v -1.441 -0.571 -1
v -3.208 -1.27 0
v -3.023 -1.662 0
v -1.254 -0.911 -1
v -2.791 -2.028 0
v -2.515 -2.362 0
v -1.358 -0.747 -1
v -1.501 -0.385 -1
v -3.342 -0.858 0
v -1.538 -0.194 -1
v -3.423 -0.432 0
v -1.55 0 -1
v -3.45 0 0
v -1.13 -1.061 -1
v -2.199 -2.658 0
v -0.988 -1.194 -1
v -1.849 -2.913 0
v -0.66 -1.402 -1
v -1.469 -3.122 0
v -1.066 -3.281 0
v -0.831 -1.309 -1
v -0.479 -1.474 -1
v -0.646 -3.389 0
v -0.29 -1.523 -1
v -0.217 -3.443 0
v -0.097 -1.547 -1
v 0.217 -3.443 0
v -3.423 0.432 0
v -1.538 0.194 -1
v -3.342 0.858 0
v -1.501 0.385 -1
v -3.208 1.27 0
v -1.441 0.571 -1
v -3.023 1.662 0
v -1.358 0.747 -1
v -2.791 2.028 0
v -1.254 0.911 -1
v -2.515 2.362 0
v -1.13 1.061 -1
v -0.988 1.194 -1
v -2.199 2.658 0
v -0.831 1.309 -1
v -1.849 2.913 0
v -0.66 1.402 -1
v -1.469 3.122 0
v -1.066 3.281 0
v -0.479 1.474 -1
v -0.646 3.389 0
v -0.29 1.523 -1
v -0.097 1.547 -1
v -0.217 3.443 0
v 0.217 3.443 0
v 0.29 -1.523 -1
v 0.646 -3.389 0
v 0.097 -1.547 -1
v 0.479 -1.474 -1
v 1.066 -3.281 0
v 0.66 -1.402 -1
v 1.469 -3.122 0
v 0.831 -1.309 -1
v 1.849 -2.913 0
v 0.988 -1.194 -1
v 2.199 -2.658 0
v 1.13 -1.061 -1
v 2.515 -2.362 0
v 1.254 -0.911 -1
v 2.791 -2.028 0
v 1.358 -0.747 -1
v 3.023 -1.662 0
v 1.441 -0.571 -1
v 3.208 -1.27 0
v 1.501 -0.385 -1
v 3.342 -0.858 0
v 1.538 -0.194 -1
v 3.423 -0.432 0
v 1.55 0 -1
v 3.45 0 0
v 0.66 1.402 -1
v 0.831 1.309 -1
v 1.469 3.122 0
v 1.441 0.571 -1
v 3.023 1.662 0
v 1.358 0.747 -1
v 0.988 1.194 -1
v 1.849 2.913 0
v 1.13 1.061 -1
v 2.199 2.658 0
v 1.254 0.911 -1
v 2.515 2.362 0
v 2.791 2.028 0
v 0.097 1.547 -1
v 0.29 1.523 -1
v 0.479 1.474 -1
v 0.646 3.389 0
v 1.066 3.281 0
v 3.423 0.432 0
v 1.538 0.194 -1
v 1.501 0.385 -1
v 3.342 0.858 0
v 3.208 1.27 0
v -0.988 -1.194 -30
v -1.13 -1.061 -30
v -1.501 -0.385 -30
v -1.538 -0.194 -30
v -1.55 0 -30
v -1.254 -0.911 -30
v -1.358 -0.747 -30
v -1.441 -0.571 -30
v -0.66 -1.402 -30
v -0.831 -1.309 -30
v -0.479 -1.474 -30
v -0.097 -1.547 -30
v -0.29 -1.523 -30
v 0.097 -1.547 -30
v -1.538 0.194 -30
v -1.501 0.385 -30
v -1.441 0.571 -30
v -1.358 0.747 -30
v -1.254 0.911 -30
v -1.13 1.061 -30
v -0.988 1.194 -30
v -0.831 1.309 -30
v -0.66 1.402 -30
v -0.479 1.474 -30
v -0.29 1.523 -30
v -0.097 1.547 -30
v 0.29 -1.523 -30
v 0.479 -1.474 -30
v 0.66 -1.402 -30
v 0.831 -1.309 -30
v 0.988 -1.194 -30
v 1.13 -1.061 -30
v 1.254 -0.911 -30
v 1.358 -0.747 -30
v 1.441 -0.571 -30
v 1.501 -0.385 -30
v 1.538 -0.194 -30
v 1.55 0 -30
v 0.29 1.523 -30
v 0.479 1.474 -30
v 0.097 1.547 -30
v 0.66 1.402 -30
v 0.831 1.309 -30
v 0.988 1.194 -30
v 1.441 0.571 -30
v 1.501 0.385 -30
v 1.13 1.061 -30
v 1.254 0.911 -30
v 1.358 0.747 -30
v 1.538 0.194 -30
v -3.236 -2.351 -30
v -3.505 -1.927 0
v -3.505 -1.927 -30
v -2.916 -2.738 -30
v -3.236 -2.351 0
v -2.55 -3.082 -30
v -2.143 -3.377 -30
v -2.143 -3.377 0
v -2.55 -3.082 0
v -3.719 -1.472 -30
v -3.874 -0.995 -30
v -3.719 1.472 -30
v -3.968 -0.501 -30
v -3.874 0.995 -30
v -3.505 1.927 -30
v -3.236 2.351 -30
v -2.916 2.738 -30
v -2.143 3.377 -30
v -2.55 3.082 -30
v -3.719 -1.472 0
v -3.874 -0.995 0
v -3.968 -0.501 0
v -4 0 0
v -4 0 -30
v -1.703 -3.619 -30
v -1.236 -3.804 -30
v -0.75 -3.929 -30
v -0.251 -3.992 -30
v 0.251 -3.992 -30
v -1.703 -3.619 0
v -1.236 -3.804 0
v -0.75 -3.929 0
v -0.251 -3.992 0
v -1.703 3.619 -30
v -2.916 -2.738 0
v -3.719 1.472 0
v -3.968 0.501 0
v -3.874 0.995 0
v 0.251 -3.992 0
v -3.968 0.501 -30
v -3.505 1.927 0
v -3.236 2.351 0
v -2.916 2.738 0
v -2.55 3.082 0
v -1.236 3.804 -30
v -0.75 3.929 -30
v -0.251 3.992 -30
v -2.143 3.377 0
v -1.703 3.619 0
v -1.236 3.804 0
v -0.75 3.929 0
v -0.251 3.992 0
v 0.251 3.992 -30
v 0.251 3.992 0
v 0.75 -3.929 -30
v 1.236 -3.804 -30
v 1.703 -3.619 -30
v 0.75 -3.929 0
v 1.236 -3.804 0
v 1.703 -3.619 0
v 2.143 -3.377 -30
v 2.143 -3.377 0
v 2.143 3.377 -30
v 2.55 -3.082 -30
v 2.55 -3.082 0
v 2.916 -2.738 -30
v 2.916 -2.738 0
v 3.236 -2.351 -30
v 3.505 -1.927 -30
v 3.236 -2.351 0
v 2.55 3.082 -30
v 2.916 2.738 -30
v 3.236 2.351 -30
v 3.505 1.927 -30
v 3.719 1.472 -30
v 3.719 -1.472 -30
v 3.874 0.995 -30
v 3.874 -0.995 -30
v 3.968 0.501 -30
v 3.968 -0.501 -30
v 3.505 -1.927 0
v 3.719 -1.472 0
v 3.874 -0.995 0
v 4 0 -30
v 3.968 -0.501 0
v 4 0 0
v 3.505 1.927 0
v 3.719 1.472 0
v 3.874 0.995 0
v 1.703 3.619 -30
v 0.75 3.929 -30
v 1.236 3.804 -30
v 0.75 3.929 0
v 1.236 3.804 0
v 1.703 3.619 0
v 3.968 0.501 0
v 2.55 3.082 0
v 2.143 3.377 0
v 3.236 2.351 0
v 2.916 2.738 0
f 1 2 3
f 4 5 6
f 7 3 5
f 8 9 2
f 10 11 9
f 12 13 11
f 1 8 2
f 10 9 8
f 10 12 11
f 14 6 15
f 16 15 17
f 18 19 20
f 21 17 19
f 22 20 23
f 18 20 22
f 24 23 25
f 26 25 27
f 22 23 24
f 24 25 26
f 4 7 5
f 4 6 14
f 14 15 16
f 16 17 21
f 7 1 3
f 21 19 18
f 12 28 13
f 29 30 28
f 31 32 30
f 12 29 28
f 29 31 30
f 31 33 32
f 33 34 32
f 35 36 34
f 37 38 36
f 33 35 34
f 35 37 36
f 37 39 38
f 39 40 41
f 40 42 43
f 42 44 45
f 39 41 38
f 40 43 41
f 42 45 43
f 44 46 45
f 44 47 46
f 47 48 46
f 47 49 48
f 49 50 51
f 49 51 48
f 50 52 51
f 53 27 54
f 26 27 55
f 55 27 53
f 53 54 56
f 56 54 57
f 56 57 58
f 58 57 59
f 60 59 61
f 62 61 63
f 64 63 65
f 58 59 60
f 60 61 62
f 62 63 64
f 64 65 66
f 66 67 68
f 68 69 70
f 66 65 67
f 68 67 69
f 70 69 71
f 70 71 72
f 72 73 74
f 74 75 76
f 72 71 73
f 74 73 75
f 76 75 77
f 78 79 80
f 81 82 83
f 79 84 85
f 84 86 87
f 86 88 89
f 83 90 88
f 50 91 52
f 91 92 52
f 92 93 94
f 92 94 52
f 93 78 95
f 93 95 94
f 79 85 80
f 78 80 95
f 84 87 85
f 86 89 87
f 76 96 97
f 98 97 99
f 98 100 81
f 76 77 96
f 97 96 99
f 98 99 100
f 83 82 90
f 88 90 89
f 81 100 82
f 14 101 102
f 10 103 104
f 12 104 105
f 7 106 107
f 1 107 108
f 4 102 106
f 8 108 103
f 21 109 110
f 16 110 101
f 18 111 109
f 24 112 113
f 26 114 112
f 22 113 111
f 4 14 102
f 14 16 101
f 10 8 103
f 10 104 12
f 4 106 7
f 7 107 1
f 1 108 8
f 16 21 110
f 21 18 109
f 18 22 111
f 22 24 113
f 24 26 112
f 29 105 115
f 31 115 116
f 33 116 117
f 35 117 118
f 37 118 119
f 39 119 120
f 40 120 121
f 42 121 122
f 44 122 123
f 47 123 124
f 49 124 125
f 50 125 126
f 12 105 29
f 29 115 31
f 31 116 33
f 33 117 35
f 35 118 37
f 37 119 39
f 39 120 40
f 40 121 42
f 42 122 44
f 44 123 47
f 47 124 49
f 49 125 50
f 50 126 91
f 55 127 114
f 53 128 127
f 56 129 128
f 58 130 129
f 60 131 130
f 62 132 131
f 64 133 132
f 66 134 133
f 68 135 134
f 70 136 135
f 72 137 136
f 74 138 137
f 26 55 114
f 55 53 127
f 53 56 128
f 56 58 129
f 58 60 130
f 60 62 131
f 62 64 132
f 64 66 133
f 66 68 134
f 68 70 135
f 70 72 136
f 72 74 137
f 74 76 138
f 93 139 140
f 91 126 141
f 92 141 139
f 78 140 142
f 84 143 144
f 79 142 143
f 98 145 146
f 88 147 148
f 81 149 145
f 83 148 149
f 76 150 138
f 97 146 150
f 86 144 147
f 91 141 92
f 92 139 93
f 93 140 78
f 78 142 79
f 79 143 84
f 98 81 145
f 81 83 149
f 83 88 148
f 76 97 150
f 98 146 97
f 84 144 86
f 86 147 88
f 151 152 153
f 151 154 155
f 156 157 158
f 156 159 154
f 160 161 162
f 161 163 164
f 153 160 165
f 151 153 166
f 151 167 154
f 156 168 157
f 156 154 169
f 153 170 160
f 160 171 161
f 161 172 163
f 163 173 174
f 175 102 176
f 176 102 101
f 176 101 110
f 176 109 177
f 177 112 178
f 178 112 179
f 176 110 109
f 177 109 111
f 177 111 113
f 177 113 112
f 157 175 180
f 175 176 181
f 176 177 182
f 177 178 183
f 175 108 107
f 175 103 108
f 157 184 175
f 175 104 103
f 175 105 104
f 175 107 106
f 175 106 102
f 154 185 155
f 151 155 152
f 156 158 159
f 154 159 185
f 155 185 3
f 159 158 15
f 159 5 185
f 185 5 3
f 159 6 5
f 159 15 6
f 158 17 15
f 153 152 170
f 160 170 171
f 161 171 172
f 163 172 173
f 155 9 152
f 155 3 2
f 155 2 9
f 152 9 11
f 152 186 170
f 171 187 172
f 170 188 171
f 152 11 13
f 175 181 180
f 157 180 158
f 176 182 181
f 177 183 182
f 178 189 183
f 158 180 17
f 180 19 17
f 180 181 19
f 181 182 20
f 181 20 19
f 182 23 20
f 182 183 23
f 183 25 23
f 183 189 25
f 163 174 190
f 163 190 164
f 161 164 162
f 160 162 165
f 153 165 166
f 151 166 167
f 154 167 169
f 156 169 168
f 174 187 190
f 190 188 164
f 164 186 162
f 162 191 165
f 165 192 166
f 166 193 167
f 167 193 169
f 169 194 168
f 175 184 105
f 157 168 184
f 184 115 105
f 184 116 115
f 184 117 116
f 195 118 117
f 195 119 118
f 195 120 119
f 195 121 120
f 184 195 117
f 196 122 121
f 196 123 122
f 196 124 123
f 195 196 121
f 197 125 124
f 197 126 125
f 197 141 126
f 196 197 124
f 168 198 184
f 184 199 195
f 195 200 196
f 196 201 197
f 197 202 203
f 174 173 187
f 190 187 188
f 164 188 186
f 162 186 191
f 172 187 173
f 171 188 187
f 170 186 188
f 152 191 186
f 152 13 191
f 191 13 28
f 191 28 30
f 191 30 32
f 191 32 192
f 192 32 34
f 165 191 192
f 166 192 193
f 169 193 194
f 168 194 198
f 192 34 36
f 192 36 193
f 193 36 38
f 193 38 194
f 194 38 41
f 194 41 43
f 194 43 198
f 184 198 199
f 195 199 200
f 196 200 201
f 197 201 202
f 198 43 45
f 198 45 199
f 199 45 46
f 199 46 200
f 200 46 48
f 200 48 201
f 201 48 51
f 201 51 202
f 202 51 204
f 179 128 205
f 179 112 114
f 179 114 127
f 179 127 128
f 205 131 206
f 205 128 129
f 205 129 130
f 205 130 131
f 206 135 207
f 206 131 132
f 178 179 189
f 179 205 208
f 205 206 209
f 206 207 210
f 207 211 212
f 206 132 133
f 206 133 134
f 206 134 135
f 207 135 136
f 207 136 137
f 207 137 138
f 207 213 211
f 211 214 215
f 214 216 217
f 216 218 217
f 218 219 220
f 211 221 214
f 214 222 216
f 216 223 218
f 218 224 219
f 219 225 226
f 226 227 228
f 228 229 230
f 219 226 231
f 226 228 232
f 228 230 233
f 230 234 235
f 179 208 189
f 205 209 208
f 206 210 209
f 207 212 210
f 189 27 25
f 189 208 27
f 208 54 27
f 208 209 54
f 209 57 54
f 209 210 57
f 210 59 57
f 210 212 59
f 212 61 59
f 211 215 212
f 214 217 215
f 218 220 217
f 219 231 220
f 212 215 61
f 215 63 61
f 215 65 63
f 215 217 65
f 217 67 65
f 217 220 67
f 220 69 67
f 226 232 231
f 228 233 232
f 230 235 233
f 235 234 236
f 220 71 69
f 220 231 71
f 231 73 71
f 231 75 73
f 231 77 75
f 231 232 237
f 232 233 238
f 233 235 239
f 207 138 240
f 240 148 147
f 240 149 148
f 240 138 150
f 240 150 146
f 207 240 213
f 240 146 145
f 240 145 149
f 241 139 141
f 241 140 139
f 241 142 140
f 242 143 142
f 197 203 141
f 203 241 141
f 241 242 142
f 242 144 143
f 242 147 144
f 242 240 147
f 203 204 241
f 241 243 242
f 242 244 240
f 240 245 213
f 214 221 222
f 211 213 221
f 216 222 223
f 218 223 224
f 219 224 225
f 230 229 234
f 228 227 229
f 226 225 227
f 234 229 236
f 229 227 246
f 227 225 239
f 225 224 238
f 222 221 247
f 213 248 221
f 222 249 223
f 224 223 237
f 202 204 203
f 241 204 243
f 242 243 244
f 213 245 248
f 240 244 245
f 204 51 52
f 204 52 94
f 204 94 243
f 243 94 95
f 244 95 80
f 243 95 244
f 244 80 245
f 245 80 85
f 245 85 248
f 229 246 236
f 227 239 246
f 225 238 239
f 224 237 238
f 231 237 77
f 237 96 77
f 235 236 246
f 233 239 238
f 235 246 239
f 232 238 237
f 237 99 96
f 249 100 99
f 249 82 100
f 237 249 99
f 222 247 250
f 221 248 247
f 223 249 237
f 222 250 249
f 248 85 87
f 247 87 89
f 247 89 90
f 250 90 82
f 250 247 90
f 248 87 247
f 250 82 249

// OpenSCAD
$fn = 50;

difference() {
	union() {
		translate(v = [0, 0, -30.0]) {
			cylinder(h = 30, r = 4.0);
		}
	}
	union() {
		translate(v = [0, 0, 0]) {
			rotate(a = [0, 0, 0]) {
				difference() {
					union() {
						translate(v = [0, 0, -33.0]) {
							cylinder(h = 33, r = 1.25);
						}
						translate(v = [0, 0, -1.0]) {
							cylinder(h = 1.0, r1 = 1.55, r2 = 3.45);
						}
						translate(v = [0, 0, -33.0]) {
							cylinder(h = 33, r = 1.55);
						}
						translate(v = [0, 0, -33.0]) {
							cylinder(h = 33, r = 1.25);
						}
					}
					union();
				}
			}
		}
	}
}
